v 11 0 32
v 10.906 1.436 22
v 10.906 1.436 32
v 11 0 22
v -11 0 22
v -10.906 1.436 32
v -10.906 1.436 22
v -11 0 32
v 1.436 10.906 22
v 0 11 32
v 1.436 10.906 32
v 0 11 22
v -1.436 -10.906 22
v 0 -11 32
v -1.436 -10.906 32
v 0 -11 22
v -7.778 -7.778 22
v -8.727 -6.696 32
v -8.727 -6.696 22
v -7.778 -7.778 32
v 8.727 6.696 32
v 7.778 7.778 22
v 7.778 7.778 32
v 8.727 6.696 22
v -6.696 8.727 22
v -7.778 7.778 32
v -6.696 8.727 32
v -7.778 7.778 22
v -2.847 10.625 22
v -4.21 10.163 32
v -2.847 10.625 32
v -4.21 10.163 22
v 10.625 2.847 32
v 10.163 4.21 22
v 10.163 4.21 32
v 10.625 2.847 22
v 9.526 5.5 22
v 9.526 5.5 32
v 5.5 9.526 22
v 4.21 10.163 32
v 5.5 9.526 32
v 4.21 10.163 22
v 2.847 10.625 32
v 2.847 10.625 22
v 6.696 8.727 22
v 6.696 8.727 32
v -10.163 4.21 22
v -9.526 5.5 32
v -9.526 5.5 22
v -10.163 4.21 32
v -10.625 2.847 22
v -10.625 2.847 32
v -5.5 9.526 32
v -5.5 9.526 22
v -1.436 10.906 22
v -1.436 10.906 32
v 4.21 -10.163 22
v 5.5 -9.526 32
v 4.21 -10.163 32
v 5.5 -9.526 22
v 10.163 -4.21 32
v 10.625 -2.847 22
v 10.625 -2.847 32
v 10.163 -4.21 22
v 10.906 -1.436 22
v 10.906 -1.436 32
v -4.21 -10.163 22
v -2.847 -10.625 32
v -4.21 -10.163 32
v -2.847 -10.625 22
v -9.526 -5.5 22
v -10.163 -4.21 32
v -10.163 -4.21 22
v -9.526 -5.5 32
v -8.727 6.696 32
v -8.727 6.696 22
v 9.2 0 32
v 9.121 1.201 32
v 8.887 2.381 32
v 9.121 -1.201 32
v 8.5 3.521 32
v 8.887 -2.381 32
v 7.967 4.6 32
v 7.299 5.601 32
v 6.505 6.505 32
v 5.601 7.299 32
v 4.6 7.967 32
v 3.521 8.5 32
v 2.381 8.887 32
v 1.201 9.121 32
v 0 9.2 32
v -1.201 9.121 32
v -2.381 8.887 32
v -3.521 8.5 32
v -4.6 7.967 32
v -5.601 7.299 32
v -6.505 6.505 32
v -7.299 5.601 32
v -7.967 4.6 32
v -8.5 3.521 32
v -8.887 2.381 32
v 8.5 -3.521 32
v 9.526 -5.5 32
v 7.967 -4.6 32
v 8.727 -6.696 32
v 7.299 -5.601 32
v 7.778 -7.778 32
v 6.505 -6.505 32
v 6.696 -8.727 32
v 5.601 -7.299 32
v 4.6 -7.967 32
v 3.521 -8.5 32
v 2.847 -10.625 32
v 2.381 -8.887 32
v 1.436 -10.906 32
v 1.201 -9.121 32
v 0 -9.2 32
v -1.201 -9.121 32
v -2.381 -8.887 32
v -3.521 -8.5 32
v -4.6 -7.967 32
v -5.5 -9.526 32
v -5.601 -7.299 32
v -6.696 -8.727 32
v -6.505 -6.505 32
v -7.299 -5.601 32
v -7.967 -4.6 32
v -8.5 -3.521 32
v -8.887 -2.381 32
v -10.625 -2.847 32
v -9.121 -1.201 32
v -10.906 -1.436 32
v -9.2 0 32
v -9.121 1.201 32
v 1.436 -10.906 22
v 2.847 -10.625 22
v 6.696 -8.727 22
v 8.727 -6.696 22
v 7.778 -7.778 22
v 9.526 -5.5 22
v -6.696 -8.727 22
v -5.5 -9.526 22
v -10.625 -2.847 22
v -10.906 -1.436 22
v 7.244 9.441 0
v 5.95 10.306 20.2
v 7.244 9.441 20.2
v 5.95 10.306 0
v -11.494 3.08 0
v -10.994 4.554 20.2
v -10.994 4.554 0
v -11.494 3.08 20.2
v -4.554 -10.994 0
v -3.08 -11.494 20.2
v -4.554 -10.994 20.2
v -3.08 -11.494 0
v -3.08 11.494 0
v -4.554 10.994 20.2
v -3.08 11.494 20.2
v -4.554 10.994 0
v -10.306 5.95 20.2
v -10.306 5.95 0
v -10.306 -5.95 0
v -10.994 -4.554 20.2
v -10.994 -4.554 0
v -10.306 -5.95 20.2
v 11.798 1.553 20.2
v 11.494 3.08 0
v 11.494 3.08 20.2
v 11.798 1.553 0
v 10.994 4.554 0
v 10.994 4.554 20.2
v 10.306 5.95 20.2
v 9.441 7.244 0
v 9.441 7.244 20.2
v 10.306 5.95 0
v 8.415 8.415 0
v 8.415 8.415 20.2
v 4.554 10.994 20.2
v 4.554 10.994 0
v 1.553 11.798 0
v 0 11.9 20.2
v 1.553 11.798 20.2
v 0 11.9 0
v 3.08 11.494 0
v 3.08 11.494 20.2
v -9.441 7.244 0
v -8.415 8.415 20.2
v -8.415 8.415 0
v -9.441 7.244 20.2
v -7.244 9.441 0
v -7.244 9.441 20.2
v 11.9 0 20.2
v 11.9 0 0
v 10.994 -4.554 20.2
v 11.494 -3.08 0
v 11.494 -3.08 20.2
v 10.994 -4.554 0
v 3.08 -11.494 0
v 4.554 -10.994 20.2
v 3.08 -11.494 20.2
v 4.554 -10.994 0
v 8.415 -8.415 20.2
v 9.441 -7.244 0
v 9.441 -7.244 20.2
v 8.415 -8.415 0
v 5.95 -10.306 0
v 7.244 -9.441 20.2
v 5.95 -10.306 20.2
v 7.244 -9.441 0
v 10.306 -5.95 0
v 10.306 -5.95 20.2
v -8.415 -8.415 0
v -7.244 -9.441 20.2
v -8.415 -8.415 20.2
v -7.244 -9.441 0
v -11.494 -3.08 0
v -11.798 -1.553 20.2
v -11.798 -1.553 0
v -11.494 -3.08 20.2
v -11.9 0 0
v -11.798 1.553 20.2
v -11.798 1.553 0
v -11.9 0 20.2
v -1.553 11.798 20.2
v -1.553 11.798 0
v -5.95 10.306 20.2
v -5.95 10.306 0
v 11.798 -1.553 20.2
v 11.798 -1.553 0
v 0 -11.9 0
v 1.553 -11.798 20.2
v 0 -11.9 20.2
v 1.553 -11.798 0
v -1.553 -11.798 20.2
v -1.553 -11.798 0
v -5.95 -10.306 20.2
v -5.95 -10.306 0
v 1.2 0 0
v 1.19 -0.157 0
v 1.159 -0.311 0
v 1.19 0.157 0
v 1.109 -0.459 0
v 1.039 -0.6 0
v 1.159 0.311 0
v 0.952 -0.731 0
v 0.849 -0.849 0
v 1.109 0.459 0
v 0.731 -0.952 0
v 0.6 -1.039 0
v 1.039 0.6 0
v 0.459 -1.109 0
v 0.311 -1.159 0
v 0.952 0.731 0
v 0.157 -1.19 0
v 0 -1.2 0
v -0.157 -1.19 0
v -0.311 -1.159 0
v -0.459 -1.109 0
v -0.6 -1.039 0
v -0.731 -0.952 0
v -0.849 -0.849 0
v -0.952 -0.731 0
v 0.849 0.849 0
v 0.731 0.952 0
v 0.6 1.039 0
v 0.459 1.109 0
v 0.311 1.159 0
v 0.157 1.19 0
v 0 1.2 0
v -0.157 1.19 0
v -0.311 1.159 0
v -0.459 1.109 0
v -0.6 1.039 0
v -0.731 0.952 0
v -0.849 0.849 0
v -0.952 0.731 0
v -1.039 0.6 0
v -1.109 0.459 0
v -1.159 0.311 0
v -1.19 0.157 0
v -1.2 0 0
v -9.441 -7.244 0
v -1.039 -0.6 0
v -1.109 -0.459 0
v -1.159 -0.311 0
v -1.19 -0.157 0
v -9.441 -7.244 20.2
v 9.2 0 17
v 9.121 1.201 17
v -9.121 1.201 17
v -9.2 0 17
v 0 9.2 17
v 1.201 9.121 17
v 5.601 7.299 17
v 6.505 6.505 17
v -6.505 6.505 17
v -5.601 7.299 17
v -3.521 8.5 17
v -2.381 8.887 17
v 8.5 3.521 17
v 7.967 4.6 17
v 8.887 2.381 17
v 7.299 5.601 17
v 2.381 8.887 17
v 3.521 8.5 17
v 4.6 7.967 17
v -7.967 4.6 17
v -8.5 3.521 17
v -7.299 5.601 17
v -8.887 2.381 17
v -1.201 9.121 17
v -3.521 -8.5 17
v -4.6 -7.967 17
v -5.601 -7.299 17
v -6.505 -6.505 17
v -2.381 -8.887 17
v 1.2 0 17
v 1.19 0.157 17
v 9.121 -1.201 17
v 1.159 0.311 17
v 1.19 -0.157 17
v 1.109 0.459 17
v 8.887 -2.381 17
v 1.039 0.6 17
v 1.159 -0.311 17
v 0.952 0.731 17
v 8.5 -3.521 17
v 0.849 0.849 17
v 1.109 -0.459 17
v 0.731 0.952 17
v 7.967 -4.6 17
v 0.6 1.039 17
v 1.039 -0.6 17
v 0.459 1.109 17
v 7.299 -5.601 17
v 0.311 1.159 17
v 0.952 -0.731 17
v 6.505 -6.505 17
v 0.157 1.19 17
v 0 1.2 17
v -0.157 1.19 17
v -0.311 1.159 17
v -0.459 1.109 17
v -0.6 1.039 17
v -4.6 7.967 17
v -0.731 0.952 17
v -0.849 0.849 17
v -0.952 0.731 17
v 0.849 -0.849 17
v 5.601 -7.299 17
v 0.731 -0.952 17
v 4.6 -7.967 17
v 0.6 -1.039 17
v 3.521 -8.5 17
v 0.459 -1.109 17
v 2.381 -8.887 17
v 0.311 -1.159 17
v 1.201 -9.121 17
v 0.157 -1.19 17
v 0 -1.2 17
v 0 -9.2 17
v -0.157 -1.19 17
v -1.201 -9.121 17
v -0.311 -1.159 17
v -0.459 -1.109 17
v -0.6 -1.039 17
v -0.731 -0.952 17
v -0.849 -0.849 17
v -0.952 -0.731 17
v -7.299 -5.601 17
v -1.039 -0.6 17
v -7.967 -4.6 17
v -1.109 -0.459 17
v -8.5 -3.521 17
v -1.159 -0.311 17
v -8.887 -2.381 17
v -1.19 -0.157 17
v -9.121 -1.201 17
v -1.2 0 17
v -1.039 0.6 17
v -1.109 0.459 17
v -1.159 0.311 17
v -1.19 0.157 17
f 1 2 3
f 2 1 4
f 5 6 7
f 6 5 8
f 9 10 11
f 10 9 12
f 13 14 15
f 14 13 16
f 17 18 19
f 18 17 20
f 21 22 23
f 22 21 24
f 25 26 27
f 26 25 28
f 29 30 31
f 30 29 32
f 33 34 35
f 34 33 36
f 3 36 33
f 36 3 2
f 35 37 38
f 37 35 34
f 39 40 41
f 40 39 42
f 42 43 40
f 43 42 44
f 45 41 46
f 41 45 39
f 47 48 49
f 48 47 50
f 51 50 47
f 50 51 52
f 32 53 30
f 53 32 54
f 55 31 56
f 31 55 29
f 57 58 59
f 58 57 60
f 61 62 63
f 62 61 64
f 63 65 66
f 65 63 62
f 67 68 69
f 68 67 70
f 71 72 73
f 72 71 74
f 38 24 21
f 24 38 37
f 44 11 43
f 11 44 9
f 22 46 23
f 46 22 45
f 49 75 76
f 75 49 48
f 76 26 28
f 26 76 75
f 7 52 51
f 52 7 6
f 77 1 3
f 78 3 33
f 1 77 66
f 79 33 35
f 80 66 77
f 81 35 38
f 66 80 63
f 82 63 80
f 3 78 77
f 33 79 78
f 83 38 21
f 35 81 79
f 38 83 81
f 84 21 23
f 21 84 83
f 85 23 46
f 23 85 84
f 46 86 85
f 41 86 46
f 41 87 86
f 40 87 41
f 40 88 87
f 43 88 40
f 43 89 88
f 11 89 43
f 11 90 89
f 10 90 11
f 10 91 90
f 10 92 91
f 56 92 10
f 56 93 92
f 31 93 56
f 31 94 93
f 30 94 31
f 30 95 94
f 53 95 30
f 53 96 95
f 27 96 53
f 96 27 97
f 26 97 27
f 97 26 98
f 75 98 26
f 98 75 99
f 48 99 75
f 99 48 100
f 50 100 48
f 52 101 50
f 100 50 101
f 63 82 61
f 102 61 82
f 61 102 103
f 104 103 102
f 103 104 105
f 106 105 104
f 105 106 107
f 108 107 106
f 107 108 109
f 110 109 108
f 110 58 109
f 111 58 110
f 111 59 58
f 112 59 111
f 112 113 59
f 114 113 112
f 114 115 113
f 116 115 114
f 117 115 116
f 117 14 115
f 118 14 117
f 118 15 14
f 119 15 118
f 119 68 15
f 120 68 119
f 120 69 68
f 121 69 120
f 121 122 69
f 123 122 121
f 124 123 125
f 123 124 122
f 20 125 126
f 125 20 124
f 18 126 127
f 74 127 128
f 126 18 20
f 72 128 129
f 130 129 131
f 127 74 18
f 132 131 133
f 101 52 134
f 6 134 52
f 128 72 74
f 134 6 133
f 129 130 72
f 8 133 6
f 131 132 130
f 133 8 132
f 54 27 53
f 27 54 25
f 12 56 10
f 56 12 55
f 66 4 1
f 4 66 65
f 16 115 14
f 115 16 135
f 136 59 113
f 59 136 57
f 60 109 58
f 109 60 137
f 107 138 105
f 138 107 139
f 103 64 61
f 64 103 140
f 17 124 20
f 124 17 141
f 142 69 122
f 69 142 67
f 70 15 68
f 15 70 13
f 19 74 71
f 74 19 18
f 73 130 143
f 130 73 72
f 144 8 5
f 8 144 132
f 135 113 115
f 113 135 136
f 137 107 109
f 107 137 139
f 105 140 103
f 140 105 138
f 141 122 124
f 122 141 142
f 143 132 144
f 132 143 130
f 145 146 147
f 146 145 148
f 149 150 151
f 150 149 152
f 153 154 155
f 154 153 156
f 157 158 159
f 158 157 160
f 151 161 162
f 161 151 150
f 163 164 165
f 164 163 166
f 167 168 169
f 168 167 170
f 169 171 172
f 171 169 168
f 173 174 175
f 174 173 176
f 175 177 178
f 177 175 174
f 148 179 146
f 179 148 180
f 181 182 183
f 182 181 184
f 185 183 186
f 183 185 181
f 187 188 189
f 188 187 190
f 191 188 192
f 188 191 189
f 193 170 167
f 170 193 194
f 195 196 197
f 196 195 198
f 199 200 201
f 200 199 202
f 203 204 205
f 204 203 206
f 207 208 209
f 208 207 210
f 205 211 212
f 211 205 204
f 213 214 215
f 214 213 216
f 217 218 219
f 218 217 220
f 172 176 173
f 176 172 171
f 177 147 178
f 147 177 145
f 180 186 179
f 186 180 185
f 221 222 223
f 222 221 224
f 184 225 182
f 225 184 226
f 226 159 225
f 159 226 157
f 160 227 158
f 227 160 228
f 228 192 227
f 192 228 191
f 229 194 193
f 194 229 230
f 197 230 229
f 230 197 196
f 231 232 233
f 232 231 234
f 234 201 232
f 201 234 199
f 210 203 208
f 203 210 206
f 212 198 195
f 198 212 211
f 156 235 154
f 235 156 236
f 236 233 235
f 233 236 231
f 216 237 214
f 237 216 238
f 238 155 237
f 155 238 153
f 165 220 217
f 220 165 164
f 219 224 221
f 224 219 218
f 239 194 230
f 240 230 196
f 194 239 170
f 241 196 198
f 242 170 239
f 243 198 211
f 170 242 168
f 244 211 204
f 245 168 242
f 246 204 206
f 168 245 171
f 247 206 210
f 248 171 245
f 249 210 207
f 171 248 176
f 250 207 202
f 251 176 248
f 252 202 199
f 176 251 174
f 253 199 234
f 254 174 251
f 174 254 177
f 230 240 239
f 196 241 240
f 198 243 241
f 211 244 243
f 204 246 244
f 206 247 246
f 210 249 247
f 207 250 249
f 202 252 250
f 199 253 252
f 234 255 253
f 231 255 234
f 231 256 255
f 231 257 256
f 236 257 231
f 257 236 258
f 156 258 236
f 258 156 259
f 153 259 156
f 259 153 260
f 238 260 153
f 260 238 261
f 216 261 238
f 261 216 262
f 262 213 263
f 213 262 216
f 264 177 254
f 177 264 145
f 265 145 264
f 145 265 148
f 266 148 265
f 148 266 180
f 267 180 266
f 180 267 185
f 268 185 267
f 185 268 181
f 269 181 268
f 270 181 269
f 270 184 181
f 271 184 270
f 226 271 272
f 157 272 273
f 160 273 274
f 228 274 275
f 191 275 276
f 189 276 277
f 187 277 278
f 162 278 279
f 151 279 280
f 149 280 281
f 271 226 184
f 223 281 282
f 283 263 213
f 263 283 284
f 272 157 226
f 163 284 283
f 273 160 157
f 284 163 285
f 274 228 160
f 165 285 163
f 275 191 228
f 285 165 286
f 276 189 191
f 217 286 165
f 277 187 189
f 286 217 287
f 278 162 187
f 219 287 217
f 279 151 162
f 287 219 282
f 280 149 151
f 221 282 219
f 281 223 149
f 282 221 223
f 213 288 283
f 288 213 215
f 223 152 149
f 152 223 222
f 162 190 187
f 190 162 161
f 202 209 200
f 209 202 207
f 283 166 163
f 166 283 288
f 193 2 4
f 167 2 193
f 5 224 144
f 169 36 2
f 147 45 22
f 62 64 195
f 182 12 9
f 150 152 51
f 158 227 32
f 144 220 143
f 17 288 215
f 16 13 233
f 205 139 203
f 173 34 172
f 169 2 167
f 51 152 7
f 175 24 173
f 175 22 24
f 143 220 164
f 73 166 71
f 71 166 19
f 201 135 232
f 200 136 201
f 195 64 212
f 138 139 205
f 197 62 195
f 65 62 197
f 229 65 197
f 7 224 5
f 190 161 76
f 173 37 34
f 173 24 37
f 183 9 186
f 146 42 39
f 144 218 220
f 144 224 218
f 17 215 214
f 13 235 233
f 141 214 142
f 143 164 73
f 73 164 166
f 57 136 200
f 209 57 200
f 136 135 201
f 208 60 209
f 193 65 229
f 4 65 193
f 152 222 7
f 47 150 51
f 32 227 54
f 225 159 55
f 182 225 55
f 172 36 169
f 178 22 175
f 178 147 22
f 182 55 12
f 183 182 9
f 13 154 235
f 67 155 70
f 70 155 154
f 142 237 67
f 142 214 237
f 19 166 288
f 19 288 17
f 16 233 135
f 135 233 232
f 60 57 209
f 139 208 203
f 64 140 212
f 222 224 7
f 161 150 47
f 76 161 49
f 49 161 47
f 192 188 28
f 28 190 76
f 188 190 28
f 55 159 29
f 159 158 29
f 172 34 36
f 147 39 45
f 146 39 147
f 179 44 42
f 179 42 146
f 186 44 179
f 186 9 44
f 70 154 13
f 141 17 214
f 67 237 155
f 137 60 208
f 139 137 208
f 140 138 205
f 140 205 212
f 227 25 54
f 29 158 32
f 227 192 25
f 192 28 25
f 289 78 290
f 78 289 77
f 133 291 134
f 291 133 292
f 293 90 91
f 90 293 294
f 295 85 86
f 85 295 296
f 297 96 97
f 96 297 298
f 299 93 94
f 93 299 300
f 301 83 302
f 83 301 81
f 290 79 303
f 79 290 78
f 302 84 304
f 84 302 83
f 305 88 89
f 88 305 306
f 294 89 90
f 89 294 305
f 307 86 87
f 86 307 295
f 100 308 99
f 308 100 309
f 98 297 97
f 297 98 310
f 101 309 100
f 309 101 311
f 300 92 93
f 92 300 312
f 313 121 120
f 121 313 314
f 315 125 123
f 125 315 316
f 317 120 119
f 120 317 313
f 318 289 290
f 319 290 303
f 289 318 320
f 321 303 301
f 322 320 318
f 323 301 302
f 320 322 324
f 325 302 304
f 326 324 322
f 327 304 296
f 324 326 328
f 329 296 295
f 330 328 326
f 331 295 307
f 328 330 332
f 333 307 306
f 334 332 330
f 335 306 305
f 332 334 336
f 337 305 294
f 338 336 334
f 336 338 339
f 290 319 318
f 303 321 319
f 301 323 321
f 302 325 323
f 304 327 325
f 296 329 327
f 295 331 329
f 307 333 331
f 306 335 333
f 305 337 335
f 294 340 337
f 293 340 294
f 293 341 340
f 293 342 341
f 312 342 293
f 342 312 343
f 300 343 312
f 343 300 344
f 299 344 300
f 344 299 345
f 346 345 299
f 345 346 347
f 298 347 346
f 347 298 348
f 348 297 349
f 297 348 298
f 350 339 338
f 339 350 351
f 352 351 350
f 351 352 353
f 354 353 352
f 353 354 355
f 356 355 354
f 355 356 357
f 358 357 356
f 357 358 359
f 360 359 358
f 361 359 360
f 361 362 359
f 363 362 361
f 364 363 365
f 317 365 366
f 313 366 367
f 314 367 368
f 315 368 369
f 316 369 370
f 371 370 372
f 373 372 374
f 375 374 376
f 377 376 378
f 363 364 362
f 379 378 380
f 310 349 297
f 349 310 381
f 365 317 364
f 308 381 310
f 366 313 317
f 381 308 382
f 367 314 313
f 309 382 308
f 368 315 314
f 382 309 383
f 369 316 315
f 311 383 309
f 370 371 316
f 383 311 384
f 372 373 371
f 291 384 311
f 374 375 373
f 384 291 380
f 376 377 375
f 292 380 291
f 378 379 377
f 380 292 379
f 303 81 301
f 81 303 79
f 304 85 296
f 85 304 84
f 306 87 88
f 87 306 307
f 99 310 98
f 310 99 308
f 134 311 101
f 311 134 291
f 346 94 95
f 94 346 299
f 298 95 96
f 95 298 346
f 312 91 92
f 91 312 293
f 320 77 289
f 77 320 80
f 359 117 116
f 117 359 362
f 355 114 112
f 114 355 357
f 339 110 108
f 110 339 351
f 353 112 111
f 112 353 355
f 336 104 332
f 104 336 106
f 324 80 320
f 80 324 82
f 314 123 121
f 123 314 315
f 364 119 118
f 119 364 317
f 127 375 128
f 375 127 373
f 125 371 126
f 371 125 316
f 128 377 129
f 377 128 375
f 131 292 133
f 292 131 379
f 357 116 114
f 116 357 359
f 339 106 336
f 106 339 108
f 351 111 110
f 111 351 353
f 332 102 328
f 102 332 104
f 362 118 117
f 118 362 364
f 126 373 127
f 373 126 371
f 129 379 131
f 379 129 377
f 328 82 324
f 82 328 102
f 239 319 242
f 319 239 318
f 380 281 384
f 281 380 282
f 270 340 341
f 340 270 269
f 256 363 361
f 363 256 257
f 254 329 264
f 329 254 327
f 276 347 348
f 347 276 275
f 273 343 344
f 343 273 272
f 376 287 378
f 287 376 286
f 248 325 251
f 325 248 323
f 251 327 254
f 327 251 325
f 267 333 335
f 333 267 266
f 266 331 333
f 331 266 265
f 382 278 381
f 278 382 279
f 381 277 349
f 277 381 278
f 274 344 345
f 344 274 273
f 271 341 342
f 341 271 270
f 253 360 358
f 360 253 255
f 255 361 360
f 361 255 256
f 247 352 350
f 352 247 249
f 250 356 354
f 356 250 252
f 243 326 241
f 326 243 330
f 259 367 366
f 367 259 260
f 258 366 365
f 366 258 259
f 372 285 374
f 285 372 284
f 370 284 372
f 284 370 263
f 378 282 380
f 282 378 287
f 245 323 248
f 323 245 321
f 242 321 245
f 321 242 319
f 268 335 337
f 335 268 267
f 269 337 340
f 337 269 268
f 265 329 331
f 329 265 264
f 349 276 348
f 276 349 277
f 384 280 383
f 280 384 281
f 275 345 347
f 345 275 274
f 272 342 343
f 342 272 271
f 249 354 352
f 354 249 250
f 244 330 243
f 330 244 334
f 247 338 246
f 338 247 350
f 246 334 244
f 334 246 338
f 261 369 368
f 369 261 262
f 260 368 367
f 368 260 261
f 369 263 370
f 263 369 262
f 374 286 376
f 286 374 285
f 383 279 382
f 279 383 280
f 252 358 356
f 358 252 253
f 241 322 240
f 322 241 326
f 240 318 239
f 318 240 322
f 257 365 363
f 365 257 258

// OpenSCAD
// Copyright 2017 Arthur Davis (thingiverse.com/artdavis)
// This file is licensed under a Creative Commons Attribution 4.0
// International License.
// THE SOFTWARE IS PROVIDED "AS IS", WITHOUT WARRANTY OF ANY KIND, EXPRESS OR
// IMPLIED, INCLUDING BUT NOT LIMITED TO THE WARRANTIES OF MERCHANTABILITY,
// FITNESS FOR A PARTICULAR PURPOSE AND NONINFRINGEMENT. IN NO EVENT SHALL THE
// AUTHORS OR COPYRIGHT HOLDERS BE LIABLE FOR ANY CLAIM, DAMAGES OR OTHER
// LIABILITY, WHETHER IN AN ACTION OF CONTRACT, TORT OR OTHERWISE, ARISING
// FROM, OUT OF OR IN CONNECTION WITH THE SOFTWARE OR THE USE OR OTHER
// DEALINGS IN THE SOFTWARE.
//
// A coupler that may be used to join a model rocket nose cone
// to the main body tube. This is especially useful for a split
// halves nose cone as in the Eggloft Egg Rocket Nose Cone here:
// http://www.thingiverse.com/thing:2228825
// The top setback portion is available area to tape the shoulder
// of the nose cone to this coupler. This length in combination
// with the length of the nose cone shoulder should be enough to
// accommodate the width of the tape that will be used.
// The hole in the bottom allows an eyelet to be screwed in to
// the coupler for tying to the shock cord.
//
// Estes body tube dimensions
// Ref: http://www.estesrockets.com
// Inner diameters:
// BT-5: 13.2mm
// BT-20: 18.0mm
// BT-50: 24.1mm
// BT-55: 32.6mm
// BT-60: 40.5mm
// Outer diameters:
// BT-5: 13.8mm
// BT-20: 18.7mm
// BT-50: 24.8mm
// BT-55: 34.0mm
// BT-60: 42.0mm

// Optimize view for Makerbot Customizer:
// preview[view:south east, tilt:top diagonal]

// Body Tube Inner Diameter
btid = 23.8; // [5:0.1:60]
// Coupling pocket inner diameter
pid = 18.4; // [5:0.1:60]
// Coupler coupling outer diameter
ccod = 22.0; // [5:0.1:60]
// Length of the whole coupling
length = 32.0; // [5:0.1:60]
// Diameter for eyelet screw hole
hole_diam = 2.4; // [0:0.1:10]
// Depth of coupling pocket
pocket = 15.0; // [0:0.1:60]
// Length of coupler coupling OD to expose
setback = 10.0; // [0:0.1:60]

/* [Hidden] */
// Special variables for facets/arcs
$fn = 48;
// Overlap offset for improved CSG operations
delta = 0.1;
// Ledge thickness
lth = btid - ccod;
// Fillet angle (deg)
fa = 45;
// Fillet height
fht = tan(fa) * lth;

difference() {
    difference() {
        union() {
            translate(v = [0, 0, length - setback]) {
                // Top of coupling
                cylinder(h=setback, d=ccod);
            }
            // Bottom of coupling
            cylinder(h = length - setback - fht, d = btid);
            // Fillet
            translate(v = [0, 0, length - setback - fht]) {
                cylinder(h=fht, d1=btid, d2=ccod);
            }
            
        }

        // Coupling pocket
        translate(v = [0, 0, length - pocket]) {
            cylinder(h=pocket + delta, d = pid);
        }
    }
    // Eyelet screw hole
    cylinder(h = 2*(length + delta), d = hole_diam, center=true);
}
